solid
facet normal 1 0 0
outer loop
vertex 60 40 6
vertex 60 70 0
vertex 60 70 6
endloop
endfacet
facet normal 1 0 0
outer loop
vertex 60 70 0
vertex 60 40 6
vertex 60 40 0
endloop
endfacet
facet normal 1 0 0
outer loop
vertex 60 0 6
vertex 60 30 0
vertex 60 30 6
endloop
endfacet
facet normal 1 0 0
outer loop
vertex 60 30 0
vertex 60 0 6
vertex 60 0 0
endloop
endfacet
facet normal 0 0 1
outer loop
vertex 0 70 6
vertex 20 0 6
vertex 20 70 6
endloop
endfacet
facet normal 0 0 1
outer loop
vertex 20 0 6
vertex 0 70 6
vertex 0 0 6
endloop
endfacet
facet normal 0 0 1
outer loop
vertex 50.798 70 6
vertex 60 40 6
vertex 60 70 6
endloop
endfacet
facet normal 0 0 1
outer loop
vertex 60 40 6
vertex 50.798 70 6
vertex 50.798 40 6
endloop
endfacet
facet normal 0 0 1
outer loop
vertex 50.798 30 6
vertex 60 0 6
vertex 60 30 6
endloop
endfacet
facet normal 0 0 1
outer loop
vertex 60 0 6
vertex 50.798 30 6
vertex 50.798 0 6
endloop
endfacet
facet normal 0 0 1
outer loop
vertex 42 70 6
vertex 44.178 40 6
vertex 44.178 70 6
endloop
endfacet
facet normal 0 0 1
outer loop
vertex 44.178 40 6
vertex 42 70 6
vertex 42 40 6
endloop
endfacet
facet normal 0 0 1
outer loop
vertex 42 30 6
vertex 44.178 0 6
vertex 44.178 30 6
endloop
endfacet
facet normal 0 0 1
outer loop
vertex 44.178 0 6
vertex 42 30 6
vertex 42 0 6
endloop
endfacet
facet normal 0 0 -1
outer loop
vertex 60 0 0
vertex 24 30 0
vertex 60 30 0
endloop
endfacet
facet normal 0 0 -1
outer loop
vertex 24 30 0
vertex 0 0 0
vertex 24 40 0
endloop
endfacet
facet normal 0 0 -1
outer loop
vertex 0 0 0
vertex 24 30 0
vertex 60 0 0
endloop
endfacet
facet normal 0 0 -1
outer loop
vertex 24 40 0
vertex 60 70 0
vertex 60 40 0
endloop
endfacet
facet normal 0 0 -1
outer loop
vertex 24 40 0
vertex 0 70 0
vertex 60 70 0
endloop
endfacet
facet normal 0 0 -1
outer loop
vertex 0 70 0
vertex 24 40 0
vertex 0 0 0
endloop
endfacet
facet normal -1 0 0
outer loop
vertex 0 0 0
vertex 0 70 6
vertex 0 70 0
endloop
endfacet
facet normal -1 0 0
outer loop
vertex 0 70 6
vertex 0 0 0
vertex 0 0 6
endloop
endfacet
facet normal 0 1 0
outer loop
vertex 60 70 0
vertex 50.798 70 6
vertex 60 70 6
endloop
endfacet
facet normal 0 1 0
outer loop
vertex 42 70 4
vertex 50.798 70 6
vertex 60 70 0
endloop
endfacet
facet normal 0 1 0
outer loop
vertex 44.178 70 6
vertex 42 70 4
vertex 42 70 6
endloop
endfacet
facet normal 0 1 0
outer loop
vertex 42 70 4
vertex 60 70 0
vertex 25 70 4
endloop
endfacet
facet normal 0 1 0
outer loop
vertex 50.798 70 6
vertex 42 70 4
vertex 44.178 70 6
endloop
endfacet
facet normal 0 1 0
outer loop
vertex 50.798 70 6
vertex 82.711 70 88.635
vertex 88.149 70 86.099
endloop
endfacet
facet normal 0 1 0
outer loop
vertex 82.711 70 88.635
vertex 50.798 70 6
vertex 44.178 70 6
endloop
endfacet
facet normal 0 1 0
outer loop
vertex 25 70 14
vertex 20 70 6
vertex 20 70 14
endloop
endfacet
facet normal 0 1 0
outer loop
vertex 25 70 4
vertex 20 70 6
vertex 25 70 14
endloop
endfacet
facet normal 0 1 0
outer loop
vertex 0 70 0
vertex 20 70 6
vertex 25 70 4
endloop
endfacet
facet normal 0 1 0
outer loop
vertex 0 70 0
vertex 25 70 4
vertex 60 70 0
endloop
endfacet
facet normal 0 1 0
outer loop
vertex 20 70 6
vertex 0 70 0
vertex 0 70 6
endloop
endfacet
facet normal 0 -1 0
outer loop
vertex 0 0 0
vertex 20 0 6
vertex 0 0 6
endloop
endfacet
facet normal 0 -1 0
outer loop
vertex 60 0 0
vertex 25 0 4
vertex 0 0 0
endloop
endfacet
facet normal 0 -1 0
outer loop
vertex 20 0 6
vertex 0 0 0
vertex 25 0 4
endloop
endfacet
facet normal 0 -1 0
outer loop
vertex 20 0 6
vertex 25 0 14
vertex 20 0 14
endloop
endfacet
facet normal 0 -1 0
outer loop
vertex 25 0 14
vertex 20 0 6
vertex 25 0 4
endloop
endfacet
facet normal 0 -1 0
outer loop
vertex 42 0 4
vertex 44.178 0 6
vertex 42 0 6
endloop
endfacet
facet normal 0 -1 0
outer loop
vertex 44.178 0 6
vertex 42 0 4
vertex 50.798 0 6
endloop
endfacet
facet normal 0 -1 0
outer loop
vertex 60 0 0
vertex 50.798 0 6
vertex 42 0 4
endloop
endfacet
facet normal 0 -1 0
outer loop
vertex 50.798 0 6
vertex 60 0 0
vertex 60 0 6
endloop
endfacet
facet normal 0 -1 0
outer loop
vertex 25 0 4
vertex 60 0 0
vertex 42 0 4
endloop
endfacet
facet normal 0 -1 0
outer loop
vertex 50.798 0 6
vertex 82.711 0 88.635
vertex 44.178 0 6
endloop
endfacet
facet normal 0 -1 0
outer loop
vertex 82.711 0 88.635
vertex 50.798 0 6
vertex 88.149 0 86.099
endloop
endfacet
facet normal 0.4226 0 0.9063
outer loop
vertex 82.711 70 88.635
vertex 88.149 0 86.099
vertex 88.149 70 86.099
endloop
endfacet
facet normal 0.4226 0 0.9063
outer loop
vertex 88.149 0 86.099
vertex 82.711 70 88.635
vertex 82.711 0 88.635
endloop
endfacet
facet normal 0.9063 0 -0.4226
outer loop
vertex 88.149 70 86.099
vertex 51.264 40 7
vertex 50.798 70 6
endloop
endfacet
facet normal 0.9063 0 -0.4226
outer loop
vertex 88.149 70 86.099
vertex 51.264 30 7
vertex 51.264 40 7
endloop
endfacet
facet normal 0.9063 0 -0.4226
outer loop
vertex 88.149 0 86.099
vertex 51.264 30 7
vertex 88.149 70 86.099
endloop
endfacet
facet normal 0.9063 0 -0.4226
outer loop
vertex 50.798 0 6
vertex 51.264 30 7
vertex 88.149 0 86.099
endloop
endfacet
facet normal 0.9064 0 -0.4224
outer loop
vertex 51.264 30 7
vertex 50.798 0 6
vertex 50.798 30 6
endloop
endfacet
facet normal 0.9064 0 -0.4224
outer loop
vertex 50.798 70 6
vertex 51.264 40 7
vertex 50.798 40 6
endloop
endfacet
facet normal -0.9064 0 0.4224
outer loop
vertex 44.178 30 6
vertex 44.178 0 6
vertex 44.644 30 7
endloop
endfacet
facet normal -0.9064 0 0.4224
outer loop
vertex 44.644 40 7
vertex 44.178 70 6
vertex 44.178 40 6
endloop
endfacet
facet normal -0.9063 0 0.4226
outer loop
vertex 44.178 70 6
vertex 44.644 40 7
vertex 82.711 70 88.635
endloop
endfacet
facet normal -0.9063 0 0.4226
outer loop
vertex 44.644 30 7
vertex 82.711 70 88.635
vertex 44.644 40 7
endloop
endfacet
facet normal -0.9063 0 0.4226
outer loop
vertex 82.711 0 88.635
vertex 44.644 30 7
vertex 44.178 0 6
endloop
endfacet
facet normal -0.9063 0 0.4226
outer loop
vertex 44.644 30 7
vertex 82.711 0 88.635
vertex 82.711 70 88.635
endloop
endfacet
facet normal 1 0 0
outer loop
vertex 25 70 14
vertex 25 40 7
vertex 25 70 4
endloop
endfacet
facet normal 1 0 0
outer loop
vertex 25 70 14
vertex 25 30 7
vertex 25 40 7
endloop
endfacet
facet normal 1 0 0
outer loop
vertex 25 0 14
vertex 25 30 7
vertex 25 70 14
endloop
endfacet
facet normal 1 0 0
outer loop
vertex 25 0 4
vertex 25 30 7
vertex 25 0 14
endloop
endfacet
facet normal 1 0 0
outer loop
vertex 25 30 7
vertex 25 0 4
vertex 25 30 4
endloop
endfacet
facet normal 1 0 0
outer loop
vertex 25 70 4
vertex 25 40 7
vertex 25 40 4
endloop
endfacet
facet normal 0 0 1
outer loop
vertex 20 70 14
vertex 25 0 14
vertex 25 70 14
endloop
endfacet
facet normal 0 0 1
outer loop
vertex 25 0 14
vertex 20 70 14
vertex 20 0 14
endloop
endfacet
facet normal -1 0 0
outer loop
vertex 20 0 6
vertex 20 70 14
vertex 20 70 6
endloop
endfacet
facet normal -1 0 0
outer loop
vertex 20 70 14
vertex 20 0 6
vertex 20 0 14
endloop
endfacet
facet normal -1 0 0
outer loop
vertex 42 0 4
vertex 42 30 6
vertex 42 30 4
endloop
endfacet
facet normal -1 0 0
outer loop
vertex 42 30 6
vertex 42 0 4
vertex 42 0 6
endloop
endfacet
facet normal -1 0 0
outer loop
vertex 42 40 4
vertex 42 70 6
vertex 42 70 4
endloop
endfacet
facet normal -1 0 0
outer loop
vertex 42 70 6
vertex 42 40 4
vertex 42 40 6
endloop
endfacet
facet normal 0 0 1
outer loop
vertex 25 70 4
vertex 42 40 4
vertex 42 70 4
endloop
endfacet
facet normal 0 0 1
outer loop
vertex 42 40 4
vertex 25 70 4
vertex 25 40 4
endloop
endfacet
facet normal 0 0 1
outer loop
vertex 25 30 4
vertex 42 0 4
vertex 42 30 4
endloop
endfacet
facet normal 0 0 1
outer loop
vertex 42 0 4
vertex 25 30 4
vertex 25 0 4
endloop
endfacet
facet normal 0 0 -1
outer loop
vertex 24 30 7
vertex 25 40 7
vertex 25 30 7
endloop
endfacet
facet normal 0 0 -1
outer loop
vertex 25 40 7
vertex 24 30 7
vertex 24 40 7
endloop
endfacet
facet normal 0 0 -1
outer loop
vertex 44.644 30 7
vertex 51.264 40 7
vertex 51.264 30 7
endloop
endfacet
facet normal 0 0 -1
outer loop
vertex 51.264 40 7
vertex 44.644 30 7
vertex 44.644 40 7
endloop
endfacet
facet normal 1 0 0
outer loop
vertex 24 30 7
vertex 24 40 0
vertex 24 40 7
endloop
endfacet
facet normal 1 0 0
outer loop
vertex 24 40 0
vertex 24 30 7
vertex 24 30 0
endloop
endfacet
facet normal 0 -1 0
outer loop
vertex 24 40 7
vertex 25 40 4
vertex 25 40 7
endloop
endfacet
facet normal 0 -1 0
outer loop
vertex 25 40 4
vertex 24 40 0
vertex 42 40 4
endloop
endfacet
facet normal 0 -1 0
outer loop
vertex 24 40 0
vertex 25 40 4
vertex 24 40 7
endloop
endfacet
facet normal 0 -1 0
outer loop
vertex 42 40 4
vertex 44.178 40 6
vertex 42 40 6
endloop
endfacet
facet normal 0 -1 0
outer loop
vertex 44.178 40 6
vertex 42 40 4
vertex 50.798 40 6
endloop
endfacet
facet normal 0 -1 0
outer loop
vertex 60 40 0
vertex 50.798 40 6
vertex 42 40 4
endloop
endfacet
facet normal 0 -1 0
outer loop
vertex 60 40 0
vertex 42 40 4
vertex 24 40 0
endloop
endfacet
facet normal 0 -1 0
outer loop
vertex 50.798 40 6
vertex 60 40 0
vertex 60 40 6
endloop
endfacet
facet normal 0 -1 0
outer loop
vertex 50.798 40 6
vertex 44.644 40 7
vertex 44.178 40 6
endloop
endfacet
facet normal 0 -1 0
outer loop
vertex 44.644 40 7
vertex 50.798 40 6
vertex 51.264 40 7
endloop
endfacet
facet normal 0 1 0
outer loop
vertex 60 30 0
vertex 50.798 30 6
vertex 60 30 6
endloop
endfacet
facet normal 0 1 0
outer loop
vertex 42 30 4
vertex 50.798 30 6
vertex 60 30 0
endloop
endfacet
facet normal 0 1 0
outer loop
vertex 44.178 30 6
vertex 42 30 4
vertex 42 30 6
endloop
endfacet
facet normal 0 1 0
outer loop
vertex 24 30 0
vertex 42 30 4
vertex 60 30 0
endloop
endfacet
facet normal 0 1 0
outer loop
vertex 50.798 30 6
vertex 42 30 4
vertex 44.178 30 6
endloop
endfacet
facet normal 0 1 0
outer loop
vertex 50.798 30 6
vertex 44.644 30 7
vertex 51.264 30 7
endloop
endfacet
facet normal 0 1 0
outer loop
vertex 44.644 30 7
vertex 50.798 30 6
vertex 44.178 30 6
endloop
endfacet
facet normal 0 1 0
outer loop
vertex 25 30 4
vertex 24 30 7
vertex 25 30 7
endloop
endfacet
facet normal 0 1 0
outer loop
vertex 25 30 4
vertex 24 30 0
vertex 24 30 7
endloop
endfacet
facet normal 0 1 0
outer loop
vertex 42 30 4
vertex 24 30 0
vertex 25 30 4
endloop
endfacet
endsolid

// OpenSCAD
// Phone stand for the desk, with a notch for the charging cable. The phone leans back at
// 25 degrees against the back plate, its bottom edge in a groove behind a lip. Takes a
// phone in a case up to 15 mm thick. Print flat on its base, any filament, no supports.

width  = 70;
base_l = 60; base_t = 6;
back_t = 6;  back_h = 95; lean = 25;   // degrees back from vertical
lip_x  = 20; lip_t = 5; lip_h = 14;    // the front lip
groove_depth = 2;
cable  = 10;

difference() {
    union() {
        cube([base_l, width, base_t]);
        translate([48, 0, 0]) rotate([0, lean, 0]) translate([-back_t, 0, 0]) cube([back_t, width, back_h]);   // back plate, leaning away
        translate([lip_x, 0, 0]) cube([lip_t, width, lip_h]);                                               // front lip
    }
    translate([lip_x + lip_t, -1, base_t - groove_depth]) cube([42 - lip_x - lip_t, width + 2, 30]);         // groove the phone stands in
    translate([lip_x + lip_t - 1, width / 2 - cable / 2, -1]) cube([base_l - lip_x - lip_t + 22, cable, base_t + 2]);   // cable tunnel from the groove out through the back
    translate([-1, -1, -1]) cube([base_l + 20, width + 2, 1]);                                               // trim below the bed
}
